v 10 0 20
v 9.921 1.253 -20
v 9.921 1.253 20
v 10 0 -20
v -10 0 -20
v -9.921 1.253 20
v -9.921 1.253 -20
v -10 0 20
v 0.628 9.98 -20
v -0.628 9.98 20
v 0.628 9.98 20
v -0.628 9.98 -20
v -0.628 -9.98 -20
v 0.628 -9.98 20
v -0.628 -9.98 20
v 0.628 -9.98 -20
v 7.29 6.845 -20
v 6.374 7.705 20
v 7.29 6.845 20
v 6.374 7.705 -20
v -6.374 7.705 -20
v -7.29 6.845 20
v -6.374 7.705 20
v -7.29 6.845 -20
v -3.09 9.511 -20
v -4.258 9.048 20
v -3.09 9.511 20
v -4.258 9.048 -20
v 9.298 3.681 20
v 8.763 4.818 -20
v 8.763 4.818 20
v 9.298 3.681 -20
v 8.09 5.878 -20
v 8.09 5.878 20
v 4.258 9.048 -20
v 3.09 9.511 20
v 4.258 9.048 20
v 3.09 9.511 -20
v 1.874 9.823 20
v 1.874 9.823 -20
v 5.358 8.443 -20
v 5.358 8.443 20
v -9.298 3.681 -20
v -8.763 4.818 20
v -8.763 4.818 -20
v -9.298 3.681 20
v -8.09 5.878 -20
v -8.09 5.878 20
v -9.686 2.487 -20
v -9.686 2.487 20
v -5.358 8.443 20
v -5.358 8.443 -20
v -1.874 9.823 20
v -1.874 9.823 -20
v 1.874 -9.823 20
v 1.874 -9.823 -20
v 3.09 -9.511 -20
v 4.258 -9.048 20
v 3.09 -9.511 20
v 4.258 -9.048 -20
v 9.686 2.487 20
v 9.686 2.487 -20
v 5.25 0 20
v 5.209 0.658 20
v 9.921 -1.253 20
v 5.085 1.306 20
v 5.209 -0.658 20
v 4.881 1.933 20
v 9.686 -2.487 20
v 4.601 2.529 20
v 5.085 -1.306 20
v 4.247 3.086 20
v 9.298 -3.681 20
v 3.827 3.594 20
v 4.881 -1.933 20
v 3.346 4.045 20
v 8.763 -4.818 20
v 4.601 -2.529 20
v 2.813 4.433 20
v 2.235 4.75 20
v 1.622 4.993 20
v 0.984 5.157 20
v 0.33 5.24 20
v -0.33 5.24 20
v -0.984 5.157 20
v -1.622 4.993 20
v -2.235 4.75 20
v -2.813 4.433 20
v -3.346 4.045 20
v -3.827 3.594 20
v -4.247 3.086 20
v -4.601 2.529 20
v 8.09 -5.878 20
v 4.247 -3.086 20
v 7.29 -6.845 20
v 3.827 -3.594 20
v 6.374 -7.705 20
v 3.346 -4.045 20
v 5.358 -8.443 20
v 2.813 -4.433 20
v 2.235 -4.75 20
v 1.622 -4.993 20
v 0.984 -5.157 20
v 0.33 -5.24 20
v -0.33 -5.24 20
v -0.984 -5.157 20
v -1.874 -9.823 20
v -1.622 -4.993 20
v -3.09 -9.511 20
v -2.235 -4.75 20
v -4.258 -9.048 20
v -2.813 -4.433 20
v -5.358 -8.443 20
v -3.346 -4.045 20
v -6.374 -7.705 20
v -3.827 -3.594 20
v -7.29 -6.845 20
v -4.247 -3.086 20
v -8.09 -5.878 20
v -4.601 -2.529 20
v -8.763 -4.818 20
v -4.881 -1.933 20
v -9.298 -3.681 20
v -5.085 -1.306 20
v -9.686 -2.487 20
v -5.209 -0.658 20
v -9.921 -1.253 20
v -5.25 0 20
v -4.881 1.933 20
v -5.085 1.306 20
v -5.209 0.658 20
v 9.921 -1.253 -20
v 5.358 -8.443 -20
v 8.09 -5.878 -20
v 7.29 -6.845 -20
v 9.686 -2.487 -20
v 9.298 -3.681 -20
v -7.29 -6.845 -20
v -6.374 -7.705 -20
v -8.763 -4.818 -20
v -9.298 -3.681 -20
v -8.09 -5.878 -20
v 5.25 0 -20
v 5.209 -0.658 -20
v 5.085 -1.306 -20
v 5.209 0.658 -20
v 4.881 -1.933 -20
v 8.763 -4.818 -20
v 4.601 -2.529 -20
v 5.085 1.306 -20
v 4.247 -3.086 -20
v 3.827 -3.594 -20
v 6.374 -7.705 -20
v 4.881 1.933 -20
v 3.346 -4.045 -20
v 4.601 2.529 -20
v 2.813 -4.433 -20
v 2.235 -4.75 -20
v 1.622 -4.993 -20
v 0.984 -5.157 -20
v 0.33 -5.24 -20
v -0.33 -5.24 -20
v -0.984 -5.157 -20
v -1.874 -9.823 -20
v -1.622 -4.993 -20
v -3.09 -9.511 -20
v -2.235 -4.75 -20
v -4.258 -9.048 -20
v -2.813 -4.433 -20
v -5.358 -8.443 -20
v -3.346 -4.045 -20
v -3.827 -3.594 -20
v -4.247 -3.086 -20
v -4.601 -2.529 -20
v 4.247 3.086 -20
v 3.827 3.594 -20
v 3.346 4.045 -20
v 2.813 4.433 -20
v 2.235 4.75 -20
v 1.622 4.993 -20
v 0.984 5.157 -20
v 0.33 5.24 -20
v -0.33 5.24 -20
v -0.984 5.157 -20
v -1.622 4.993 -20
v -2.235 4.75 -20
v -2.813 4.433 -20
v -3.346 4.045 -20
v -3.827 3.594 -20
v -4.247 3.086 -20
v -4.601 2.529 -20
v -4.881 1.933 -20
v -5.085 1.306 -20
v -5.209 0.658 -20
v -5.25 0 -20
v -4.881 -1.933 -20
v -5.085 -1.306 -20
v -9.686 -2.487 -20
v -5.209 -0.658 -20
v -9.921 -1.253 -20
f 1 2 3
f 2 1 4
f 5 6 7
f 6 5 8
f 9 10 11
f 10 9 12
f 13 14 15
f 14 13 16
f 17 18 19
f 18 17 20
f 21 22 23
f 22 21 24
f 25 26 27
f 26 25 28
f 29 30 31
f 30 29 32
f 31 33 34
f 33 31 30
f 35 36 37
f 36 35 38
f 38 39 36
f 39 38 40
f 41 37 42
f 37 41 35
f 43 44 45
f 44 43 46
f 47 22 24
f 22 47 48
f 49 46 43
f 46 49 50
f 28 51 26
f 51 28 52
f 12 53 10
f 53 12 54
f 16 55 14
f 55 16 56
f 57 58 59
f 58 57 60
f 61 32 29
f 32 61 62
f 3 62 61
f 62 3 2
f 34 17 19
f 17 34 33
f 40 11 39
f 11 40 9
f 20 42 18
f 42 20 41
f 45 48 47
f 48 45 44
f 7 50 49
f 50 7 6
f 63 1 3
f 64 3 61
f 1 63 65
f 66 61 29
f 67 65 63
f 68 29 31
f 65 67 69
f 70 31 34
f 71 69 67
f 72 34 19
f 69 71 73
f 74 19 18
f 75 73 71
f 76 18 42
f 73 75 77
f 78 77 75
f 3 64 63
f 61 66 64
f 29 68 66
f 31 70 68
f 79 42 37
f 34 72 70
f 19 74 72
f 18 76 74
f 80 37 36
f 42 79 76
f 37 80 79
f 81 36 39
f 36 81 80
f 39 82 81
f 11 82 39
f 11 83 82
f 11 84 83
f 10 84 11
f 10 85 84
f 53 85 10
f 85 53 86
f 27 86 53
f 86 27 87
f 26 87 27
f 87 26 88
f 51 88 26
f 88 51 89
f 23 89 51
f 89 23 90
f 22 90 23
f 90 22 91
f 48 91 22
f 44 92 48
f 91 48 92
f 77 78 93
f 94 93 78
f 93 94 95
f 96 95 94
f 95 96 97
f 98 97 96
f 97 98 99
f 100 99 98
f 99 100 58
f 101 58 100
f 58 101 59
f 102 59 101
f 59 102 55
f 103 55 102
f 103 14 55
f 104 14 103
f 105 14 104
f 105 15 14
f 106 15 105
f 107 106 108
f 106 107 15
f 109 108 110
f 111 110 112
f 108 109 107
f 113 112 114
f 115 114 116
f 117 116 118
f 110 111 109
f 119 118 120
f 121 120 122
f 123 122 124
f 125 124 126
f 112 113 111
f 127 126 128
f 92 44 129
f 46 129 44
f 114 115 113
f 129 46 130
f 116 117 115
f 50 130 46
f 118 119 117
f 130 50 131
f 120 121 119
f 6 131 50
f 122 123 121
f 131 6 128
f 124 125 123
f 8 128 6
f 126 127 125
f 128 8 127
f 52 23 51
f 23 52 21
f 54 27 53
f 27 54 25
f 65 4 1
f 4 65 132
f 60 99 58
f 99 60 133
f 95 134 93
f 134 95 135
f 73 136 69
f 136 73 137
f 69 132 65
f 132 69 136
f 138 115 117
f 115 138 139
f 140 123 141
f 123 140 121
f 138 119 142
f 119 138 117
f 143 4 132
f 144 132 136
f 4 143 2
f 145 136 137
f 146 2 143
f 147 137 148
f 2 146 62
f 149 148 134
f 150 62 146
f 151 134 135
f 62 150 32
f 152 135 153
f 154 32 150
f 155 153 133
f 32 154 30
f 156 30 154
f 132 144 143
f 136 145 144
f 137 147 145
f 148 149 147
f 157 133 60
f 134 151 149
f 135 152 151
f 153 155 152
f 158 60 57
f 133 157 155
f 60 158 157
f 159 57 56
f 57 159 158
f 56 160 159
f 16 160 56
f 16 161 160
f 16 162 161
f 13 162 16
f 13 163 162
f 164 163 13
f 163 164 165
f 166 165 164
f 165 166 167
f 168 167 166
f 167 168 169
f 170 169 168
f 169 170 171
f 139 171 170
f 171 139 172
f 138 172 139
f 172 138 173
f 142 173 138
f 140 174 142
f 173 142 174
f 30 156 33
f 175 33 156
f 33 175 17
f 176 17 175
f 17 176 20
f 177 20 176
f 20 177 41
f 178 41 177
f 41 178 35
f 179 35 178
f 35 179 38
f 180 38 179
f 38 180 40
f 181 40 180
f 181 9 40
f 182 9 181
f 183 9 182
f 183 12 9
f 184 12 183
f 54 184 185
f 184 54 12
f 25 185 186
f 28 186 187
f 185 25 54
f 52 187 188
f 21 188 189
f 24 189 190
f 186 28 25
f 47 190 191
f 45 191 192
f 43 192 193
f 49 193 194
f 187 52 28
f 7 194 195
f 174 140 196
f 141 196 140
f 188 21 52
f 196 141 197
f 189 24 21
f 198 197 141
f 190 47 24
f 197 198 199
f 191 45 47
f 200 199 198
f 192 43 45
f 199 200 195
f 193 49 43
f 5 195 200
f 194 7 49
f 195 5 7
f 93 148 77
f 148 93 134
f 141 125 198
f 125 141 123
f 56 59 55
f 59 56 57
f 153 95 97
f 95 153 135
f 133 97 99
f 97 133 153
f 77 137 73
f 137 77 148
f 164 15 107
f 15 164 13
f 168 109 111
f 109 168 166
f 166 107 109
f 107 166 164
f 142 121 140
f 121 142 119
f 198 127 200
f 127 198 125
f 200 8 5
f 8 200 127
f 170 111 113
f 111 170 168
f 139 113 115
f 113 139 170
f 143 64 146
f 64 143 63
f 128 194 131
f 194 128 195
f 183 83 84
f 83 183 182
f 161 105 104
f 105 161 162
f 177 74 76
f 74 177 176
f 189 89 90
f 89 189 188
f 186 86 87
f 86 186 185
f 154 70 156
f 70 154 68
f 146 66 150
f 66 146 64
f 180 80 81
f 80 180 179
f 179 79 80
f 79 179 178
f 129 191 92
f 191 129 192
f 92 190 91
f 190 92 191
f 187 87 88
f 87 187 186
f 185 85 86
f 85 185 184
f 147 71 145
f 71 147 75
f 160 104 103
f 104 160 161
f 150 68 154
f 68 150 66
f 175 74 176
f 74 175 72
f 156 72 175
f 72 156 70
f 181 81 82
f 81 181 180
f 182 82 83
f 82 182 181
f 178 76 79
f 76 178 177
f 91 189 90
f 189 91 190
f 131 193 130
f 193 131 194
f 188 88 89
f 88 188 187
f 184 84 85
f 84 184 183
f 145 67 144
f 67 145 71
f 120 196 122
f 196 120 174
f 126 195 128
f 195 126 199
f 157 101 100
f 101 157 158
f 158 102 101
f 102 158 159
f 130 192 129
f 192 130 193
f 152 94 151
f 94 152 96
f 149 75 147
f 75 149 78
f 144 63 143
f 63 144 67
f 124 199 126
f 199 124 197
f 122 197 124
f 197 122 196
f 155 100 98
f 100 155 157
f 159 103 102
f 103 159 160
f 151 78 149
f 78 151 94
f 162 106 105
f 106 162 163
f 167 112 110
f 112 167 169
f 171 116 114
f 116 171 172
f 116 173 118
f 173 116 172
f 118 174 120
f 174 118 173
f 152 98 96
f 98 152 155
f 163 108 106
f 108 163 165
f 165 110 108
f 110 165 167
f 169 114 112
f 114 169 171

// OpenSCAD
$fn = 50;


difference() {
	union() {
		translate(v = [0, 0, -20.0000000000]) {
			cylinder(h = 40, r = 10.0000000000);
		}
	}
	union() {
		translate(v = [0, 0, -100.0000000000]) {
			cylinder(h = 200, r = 5.2500000000);
		}
	}
}
